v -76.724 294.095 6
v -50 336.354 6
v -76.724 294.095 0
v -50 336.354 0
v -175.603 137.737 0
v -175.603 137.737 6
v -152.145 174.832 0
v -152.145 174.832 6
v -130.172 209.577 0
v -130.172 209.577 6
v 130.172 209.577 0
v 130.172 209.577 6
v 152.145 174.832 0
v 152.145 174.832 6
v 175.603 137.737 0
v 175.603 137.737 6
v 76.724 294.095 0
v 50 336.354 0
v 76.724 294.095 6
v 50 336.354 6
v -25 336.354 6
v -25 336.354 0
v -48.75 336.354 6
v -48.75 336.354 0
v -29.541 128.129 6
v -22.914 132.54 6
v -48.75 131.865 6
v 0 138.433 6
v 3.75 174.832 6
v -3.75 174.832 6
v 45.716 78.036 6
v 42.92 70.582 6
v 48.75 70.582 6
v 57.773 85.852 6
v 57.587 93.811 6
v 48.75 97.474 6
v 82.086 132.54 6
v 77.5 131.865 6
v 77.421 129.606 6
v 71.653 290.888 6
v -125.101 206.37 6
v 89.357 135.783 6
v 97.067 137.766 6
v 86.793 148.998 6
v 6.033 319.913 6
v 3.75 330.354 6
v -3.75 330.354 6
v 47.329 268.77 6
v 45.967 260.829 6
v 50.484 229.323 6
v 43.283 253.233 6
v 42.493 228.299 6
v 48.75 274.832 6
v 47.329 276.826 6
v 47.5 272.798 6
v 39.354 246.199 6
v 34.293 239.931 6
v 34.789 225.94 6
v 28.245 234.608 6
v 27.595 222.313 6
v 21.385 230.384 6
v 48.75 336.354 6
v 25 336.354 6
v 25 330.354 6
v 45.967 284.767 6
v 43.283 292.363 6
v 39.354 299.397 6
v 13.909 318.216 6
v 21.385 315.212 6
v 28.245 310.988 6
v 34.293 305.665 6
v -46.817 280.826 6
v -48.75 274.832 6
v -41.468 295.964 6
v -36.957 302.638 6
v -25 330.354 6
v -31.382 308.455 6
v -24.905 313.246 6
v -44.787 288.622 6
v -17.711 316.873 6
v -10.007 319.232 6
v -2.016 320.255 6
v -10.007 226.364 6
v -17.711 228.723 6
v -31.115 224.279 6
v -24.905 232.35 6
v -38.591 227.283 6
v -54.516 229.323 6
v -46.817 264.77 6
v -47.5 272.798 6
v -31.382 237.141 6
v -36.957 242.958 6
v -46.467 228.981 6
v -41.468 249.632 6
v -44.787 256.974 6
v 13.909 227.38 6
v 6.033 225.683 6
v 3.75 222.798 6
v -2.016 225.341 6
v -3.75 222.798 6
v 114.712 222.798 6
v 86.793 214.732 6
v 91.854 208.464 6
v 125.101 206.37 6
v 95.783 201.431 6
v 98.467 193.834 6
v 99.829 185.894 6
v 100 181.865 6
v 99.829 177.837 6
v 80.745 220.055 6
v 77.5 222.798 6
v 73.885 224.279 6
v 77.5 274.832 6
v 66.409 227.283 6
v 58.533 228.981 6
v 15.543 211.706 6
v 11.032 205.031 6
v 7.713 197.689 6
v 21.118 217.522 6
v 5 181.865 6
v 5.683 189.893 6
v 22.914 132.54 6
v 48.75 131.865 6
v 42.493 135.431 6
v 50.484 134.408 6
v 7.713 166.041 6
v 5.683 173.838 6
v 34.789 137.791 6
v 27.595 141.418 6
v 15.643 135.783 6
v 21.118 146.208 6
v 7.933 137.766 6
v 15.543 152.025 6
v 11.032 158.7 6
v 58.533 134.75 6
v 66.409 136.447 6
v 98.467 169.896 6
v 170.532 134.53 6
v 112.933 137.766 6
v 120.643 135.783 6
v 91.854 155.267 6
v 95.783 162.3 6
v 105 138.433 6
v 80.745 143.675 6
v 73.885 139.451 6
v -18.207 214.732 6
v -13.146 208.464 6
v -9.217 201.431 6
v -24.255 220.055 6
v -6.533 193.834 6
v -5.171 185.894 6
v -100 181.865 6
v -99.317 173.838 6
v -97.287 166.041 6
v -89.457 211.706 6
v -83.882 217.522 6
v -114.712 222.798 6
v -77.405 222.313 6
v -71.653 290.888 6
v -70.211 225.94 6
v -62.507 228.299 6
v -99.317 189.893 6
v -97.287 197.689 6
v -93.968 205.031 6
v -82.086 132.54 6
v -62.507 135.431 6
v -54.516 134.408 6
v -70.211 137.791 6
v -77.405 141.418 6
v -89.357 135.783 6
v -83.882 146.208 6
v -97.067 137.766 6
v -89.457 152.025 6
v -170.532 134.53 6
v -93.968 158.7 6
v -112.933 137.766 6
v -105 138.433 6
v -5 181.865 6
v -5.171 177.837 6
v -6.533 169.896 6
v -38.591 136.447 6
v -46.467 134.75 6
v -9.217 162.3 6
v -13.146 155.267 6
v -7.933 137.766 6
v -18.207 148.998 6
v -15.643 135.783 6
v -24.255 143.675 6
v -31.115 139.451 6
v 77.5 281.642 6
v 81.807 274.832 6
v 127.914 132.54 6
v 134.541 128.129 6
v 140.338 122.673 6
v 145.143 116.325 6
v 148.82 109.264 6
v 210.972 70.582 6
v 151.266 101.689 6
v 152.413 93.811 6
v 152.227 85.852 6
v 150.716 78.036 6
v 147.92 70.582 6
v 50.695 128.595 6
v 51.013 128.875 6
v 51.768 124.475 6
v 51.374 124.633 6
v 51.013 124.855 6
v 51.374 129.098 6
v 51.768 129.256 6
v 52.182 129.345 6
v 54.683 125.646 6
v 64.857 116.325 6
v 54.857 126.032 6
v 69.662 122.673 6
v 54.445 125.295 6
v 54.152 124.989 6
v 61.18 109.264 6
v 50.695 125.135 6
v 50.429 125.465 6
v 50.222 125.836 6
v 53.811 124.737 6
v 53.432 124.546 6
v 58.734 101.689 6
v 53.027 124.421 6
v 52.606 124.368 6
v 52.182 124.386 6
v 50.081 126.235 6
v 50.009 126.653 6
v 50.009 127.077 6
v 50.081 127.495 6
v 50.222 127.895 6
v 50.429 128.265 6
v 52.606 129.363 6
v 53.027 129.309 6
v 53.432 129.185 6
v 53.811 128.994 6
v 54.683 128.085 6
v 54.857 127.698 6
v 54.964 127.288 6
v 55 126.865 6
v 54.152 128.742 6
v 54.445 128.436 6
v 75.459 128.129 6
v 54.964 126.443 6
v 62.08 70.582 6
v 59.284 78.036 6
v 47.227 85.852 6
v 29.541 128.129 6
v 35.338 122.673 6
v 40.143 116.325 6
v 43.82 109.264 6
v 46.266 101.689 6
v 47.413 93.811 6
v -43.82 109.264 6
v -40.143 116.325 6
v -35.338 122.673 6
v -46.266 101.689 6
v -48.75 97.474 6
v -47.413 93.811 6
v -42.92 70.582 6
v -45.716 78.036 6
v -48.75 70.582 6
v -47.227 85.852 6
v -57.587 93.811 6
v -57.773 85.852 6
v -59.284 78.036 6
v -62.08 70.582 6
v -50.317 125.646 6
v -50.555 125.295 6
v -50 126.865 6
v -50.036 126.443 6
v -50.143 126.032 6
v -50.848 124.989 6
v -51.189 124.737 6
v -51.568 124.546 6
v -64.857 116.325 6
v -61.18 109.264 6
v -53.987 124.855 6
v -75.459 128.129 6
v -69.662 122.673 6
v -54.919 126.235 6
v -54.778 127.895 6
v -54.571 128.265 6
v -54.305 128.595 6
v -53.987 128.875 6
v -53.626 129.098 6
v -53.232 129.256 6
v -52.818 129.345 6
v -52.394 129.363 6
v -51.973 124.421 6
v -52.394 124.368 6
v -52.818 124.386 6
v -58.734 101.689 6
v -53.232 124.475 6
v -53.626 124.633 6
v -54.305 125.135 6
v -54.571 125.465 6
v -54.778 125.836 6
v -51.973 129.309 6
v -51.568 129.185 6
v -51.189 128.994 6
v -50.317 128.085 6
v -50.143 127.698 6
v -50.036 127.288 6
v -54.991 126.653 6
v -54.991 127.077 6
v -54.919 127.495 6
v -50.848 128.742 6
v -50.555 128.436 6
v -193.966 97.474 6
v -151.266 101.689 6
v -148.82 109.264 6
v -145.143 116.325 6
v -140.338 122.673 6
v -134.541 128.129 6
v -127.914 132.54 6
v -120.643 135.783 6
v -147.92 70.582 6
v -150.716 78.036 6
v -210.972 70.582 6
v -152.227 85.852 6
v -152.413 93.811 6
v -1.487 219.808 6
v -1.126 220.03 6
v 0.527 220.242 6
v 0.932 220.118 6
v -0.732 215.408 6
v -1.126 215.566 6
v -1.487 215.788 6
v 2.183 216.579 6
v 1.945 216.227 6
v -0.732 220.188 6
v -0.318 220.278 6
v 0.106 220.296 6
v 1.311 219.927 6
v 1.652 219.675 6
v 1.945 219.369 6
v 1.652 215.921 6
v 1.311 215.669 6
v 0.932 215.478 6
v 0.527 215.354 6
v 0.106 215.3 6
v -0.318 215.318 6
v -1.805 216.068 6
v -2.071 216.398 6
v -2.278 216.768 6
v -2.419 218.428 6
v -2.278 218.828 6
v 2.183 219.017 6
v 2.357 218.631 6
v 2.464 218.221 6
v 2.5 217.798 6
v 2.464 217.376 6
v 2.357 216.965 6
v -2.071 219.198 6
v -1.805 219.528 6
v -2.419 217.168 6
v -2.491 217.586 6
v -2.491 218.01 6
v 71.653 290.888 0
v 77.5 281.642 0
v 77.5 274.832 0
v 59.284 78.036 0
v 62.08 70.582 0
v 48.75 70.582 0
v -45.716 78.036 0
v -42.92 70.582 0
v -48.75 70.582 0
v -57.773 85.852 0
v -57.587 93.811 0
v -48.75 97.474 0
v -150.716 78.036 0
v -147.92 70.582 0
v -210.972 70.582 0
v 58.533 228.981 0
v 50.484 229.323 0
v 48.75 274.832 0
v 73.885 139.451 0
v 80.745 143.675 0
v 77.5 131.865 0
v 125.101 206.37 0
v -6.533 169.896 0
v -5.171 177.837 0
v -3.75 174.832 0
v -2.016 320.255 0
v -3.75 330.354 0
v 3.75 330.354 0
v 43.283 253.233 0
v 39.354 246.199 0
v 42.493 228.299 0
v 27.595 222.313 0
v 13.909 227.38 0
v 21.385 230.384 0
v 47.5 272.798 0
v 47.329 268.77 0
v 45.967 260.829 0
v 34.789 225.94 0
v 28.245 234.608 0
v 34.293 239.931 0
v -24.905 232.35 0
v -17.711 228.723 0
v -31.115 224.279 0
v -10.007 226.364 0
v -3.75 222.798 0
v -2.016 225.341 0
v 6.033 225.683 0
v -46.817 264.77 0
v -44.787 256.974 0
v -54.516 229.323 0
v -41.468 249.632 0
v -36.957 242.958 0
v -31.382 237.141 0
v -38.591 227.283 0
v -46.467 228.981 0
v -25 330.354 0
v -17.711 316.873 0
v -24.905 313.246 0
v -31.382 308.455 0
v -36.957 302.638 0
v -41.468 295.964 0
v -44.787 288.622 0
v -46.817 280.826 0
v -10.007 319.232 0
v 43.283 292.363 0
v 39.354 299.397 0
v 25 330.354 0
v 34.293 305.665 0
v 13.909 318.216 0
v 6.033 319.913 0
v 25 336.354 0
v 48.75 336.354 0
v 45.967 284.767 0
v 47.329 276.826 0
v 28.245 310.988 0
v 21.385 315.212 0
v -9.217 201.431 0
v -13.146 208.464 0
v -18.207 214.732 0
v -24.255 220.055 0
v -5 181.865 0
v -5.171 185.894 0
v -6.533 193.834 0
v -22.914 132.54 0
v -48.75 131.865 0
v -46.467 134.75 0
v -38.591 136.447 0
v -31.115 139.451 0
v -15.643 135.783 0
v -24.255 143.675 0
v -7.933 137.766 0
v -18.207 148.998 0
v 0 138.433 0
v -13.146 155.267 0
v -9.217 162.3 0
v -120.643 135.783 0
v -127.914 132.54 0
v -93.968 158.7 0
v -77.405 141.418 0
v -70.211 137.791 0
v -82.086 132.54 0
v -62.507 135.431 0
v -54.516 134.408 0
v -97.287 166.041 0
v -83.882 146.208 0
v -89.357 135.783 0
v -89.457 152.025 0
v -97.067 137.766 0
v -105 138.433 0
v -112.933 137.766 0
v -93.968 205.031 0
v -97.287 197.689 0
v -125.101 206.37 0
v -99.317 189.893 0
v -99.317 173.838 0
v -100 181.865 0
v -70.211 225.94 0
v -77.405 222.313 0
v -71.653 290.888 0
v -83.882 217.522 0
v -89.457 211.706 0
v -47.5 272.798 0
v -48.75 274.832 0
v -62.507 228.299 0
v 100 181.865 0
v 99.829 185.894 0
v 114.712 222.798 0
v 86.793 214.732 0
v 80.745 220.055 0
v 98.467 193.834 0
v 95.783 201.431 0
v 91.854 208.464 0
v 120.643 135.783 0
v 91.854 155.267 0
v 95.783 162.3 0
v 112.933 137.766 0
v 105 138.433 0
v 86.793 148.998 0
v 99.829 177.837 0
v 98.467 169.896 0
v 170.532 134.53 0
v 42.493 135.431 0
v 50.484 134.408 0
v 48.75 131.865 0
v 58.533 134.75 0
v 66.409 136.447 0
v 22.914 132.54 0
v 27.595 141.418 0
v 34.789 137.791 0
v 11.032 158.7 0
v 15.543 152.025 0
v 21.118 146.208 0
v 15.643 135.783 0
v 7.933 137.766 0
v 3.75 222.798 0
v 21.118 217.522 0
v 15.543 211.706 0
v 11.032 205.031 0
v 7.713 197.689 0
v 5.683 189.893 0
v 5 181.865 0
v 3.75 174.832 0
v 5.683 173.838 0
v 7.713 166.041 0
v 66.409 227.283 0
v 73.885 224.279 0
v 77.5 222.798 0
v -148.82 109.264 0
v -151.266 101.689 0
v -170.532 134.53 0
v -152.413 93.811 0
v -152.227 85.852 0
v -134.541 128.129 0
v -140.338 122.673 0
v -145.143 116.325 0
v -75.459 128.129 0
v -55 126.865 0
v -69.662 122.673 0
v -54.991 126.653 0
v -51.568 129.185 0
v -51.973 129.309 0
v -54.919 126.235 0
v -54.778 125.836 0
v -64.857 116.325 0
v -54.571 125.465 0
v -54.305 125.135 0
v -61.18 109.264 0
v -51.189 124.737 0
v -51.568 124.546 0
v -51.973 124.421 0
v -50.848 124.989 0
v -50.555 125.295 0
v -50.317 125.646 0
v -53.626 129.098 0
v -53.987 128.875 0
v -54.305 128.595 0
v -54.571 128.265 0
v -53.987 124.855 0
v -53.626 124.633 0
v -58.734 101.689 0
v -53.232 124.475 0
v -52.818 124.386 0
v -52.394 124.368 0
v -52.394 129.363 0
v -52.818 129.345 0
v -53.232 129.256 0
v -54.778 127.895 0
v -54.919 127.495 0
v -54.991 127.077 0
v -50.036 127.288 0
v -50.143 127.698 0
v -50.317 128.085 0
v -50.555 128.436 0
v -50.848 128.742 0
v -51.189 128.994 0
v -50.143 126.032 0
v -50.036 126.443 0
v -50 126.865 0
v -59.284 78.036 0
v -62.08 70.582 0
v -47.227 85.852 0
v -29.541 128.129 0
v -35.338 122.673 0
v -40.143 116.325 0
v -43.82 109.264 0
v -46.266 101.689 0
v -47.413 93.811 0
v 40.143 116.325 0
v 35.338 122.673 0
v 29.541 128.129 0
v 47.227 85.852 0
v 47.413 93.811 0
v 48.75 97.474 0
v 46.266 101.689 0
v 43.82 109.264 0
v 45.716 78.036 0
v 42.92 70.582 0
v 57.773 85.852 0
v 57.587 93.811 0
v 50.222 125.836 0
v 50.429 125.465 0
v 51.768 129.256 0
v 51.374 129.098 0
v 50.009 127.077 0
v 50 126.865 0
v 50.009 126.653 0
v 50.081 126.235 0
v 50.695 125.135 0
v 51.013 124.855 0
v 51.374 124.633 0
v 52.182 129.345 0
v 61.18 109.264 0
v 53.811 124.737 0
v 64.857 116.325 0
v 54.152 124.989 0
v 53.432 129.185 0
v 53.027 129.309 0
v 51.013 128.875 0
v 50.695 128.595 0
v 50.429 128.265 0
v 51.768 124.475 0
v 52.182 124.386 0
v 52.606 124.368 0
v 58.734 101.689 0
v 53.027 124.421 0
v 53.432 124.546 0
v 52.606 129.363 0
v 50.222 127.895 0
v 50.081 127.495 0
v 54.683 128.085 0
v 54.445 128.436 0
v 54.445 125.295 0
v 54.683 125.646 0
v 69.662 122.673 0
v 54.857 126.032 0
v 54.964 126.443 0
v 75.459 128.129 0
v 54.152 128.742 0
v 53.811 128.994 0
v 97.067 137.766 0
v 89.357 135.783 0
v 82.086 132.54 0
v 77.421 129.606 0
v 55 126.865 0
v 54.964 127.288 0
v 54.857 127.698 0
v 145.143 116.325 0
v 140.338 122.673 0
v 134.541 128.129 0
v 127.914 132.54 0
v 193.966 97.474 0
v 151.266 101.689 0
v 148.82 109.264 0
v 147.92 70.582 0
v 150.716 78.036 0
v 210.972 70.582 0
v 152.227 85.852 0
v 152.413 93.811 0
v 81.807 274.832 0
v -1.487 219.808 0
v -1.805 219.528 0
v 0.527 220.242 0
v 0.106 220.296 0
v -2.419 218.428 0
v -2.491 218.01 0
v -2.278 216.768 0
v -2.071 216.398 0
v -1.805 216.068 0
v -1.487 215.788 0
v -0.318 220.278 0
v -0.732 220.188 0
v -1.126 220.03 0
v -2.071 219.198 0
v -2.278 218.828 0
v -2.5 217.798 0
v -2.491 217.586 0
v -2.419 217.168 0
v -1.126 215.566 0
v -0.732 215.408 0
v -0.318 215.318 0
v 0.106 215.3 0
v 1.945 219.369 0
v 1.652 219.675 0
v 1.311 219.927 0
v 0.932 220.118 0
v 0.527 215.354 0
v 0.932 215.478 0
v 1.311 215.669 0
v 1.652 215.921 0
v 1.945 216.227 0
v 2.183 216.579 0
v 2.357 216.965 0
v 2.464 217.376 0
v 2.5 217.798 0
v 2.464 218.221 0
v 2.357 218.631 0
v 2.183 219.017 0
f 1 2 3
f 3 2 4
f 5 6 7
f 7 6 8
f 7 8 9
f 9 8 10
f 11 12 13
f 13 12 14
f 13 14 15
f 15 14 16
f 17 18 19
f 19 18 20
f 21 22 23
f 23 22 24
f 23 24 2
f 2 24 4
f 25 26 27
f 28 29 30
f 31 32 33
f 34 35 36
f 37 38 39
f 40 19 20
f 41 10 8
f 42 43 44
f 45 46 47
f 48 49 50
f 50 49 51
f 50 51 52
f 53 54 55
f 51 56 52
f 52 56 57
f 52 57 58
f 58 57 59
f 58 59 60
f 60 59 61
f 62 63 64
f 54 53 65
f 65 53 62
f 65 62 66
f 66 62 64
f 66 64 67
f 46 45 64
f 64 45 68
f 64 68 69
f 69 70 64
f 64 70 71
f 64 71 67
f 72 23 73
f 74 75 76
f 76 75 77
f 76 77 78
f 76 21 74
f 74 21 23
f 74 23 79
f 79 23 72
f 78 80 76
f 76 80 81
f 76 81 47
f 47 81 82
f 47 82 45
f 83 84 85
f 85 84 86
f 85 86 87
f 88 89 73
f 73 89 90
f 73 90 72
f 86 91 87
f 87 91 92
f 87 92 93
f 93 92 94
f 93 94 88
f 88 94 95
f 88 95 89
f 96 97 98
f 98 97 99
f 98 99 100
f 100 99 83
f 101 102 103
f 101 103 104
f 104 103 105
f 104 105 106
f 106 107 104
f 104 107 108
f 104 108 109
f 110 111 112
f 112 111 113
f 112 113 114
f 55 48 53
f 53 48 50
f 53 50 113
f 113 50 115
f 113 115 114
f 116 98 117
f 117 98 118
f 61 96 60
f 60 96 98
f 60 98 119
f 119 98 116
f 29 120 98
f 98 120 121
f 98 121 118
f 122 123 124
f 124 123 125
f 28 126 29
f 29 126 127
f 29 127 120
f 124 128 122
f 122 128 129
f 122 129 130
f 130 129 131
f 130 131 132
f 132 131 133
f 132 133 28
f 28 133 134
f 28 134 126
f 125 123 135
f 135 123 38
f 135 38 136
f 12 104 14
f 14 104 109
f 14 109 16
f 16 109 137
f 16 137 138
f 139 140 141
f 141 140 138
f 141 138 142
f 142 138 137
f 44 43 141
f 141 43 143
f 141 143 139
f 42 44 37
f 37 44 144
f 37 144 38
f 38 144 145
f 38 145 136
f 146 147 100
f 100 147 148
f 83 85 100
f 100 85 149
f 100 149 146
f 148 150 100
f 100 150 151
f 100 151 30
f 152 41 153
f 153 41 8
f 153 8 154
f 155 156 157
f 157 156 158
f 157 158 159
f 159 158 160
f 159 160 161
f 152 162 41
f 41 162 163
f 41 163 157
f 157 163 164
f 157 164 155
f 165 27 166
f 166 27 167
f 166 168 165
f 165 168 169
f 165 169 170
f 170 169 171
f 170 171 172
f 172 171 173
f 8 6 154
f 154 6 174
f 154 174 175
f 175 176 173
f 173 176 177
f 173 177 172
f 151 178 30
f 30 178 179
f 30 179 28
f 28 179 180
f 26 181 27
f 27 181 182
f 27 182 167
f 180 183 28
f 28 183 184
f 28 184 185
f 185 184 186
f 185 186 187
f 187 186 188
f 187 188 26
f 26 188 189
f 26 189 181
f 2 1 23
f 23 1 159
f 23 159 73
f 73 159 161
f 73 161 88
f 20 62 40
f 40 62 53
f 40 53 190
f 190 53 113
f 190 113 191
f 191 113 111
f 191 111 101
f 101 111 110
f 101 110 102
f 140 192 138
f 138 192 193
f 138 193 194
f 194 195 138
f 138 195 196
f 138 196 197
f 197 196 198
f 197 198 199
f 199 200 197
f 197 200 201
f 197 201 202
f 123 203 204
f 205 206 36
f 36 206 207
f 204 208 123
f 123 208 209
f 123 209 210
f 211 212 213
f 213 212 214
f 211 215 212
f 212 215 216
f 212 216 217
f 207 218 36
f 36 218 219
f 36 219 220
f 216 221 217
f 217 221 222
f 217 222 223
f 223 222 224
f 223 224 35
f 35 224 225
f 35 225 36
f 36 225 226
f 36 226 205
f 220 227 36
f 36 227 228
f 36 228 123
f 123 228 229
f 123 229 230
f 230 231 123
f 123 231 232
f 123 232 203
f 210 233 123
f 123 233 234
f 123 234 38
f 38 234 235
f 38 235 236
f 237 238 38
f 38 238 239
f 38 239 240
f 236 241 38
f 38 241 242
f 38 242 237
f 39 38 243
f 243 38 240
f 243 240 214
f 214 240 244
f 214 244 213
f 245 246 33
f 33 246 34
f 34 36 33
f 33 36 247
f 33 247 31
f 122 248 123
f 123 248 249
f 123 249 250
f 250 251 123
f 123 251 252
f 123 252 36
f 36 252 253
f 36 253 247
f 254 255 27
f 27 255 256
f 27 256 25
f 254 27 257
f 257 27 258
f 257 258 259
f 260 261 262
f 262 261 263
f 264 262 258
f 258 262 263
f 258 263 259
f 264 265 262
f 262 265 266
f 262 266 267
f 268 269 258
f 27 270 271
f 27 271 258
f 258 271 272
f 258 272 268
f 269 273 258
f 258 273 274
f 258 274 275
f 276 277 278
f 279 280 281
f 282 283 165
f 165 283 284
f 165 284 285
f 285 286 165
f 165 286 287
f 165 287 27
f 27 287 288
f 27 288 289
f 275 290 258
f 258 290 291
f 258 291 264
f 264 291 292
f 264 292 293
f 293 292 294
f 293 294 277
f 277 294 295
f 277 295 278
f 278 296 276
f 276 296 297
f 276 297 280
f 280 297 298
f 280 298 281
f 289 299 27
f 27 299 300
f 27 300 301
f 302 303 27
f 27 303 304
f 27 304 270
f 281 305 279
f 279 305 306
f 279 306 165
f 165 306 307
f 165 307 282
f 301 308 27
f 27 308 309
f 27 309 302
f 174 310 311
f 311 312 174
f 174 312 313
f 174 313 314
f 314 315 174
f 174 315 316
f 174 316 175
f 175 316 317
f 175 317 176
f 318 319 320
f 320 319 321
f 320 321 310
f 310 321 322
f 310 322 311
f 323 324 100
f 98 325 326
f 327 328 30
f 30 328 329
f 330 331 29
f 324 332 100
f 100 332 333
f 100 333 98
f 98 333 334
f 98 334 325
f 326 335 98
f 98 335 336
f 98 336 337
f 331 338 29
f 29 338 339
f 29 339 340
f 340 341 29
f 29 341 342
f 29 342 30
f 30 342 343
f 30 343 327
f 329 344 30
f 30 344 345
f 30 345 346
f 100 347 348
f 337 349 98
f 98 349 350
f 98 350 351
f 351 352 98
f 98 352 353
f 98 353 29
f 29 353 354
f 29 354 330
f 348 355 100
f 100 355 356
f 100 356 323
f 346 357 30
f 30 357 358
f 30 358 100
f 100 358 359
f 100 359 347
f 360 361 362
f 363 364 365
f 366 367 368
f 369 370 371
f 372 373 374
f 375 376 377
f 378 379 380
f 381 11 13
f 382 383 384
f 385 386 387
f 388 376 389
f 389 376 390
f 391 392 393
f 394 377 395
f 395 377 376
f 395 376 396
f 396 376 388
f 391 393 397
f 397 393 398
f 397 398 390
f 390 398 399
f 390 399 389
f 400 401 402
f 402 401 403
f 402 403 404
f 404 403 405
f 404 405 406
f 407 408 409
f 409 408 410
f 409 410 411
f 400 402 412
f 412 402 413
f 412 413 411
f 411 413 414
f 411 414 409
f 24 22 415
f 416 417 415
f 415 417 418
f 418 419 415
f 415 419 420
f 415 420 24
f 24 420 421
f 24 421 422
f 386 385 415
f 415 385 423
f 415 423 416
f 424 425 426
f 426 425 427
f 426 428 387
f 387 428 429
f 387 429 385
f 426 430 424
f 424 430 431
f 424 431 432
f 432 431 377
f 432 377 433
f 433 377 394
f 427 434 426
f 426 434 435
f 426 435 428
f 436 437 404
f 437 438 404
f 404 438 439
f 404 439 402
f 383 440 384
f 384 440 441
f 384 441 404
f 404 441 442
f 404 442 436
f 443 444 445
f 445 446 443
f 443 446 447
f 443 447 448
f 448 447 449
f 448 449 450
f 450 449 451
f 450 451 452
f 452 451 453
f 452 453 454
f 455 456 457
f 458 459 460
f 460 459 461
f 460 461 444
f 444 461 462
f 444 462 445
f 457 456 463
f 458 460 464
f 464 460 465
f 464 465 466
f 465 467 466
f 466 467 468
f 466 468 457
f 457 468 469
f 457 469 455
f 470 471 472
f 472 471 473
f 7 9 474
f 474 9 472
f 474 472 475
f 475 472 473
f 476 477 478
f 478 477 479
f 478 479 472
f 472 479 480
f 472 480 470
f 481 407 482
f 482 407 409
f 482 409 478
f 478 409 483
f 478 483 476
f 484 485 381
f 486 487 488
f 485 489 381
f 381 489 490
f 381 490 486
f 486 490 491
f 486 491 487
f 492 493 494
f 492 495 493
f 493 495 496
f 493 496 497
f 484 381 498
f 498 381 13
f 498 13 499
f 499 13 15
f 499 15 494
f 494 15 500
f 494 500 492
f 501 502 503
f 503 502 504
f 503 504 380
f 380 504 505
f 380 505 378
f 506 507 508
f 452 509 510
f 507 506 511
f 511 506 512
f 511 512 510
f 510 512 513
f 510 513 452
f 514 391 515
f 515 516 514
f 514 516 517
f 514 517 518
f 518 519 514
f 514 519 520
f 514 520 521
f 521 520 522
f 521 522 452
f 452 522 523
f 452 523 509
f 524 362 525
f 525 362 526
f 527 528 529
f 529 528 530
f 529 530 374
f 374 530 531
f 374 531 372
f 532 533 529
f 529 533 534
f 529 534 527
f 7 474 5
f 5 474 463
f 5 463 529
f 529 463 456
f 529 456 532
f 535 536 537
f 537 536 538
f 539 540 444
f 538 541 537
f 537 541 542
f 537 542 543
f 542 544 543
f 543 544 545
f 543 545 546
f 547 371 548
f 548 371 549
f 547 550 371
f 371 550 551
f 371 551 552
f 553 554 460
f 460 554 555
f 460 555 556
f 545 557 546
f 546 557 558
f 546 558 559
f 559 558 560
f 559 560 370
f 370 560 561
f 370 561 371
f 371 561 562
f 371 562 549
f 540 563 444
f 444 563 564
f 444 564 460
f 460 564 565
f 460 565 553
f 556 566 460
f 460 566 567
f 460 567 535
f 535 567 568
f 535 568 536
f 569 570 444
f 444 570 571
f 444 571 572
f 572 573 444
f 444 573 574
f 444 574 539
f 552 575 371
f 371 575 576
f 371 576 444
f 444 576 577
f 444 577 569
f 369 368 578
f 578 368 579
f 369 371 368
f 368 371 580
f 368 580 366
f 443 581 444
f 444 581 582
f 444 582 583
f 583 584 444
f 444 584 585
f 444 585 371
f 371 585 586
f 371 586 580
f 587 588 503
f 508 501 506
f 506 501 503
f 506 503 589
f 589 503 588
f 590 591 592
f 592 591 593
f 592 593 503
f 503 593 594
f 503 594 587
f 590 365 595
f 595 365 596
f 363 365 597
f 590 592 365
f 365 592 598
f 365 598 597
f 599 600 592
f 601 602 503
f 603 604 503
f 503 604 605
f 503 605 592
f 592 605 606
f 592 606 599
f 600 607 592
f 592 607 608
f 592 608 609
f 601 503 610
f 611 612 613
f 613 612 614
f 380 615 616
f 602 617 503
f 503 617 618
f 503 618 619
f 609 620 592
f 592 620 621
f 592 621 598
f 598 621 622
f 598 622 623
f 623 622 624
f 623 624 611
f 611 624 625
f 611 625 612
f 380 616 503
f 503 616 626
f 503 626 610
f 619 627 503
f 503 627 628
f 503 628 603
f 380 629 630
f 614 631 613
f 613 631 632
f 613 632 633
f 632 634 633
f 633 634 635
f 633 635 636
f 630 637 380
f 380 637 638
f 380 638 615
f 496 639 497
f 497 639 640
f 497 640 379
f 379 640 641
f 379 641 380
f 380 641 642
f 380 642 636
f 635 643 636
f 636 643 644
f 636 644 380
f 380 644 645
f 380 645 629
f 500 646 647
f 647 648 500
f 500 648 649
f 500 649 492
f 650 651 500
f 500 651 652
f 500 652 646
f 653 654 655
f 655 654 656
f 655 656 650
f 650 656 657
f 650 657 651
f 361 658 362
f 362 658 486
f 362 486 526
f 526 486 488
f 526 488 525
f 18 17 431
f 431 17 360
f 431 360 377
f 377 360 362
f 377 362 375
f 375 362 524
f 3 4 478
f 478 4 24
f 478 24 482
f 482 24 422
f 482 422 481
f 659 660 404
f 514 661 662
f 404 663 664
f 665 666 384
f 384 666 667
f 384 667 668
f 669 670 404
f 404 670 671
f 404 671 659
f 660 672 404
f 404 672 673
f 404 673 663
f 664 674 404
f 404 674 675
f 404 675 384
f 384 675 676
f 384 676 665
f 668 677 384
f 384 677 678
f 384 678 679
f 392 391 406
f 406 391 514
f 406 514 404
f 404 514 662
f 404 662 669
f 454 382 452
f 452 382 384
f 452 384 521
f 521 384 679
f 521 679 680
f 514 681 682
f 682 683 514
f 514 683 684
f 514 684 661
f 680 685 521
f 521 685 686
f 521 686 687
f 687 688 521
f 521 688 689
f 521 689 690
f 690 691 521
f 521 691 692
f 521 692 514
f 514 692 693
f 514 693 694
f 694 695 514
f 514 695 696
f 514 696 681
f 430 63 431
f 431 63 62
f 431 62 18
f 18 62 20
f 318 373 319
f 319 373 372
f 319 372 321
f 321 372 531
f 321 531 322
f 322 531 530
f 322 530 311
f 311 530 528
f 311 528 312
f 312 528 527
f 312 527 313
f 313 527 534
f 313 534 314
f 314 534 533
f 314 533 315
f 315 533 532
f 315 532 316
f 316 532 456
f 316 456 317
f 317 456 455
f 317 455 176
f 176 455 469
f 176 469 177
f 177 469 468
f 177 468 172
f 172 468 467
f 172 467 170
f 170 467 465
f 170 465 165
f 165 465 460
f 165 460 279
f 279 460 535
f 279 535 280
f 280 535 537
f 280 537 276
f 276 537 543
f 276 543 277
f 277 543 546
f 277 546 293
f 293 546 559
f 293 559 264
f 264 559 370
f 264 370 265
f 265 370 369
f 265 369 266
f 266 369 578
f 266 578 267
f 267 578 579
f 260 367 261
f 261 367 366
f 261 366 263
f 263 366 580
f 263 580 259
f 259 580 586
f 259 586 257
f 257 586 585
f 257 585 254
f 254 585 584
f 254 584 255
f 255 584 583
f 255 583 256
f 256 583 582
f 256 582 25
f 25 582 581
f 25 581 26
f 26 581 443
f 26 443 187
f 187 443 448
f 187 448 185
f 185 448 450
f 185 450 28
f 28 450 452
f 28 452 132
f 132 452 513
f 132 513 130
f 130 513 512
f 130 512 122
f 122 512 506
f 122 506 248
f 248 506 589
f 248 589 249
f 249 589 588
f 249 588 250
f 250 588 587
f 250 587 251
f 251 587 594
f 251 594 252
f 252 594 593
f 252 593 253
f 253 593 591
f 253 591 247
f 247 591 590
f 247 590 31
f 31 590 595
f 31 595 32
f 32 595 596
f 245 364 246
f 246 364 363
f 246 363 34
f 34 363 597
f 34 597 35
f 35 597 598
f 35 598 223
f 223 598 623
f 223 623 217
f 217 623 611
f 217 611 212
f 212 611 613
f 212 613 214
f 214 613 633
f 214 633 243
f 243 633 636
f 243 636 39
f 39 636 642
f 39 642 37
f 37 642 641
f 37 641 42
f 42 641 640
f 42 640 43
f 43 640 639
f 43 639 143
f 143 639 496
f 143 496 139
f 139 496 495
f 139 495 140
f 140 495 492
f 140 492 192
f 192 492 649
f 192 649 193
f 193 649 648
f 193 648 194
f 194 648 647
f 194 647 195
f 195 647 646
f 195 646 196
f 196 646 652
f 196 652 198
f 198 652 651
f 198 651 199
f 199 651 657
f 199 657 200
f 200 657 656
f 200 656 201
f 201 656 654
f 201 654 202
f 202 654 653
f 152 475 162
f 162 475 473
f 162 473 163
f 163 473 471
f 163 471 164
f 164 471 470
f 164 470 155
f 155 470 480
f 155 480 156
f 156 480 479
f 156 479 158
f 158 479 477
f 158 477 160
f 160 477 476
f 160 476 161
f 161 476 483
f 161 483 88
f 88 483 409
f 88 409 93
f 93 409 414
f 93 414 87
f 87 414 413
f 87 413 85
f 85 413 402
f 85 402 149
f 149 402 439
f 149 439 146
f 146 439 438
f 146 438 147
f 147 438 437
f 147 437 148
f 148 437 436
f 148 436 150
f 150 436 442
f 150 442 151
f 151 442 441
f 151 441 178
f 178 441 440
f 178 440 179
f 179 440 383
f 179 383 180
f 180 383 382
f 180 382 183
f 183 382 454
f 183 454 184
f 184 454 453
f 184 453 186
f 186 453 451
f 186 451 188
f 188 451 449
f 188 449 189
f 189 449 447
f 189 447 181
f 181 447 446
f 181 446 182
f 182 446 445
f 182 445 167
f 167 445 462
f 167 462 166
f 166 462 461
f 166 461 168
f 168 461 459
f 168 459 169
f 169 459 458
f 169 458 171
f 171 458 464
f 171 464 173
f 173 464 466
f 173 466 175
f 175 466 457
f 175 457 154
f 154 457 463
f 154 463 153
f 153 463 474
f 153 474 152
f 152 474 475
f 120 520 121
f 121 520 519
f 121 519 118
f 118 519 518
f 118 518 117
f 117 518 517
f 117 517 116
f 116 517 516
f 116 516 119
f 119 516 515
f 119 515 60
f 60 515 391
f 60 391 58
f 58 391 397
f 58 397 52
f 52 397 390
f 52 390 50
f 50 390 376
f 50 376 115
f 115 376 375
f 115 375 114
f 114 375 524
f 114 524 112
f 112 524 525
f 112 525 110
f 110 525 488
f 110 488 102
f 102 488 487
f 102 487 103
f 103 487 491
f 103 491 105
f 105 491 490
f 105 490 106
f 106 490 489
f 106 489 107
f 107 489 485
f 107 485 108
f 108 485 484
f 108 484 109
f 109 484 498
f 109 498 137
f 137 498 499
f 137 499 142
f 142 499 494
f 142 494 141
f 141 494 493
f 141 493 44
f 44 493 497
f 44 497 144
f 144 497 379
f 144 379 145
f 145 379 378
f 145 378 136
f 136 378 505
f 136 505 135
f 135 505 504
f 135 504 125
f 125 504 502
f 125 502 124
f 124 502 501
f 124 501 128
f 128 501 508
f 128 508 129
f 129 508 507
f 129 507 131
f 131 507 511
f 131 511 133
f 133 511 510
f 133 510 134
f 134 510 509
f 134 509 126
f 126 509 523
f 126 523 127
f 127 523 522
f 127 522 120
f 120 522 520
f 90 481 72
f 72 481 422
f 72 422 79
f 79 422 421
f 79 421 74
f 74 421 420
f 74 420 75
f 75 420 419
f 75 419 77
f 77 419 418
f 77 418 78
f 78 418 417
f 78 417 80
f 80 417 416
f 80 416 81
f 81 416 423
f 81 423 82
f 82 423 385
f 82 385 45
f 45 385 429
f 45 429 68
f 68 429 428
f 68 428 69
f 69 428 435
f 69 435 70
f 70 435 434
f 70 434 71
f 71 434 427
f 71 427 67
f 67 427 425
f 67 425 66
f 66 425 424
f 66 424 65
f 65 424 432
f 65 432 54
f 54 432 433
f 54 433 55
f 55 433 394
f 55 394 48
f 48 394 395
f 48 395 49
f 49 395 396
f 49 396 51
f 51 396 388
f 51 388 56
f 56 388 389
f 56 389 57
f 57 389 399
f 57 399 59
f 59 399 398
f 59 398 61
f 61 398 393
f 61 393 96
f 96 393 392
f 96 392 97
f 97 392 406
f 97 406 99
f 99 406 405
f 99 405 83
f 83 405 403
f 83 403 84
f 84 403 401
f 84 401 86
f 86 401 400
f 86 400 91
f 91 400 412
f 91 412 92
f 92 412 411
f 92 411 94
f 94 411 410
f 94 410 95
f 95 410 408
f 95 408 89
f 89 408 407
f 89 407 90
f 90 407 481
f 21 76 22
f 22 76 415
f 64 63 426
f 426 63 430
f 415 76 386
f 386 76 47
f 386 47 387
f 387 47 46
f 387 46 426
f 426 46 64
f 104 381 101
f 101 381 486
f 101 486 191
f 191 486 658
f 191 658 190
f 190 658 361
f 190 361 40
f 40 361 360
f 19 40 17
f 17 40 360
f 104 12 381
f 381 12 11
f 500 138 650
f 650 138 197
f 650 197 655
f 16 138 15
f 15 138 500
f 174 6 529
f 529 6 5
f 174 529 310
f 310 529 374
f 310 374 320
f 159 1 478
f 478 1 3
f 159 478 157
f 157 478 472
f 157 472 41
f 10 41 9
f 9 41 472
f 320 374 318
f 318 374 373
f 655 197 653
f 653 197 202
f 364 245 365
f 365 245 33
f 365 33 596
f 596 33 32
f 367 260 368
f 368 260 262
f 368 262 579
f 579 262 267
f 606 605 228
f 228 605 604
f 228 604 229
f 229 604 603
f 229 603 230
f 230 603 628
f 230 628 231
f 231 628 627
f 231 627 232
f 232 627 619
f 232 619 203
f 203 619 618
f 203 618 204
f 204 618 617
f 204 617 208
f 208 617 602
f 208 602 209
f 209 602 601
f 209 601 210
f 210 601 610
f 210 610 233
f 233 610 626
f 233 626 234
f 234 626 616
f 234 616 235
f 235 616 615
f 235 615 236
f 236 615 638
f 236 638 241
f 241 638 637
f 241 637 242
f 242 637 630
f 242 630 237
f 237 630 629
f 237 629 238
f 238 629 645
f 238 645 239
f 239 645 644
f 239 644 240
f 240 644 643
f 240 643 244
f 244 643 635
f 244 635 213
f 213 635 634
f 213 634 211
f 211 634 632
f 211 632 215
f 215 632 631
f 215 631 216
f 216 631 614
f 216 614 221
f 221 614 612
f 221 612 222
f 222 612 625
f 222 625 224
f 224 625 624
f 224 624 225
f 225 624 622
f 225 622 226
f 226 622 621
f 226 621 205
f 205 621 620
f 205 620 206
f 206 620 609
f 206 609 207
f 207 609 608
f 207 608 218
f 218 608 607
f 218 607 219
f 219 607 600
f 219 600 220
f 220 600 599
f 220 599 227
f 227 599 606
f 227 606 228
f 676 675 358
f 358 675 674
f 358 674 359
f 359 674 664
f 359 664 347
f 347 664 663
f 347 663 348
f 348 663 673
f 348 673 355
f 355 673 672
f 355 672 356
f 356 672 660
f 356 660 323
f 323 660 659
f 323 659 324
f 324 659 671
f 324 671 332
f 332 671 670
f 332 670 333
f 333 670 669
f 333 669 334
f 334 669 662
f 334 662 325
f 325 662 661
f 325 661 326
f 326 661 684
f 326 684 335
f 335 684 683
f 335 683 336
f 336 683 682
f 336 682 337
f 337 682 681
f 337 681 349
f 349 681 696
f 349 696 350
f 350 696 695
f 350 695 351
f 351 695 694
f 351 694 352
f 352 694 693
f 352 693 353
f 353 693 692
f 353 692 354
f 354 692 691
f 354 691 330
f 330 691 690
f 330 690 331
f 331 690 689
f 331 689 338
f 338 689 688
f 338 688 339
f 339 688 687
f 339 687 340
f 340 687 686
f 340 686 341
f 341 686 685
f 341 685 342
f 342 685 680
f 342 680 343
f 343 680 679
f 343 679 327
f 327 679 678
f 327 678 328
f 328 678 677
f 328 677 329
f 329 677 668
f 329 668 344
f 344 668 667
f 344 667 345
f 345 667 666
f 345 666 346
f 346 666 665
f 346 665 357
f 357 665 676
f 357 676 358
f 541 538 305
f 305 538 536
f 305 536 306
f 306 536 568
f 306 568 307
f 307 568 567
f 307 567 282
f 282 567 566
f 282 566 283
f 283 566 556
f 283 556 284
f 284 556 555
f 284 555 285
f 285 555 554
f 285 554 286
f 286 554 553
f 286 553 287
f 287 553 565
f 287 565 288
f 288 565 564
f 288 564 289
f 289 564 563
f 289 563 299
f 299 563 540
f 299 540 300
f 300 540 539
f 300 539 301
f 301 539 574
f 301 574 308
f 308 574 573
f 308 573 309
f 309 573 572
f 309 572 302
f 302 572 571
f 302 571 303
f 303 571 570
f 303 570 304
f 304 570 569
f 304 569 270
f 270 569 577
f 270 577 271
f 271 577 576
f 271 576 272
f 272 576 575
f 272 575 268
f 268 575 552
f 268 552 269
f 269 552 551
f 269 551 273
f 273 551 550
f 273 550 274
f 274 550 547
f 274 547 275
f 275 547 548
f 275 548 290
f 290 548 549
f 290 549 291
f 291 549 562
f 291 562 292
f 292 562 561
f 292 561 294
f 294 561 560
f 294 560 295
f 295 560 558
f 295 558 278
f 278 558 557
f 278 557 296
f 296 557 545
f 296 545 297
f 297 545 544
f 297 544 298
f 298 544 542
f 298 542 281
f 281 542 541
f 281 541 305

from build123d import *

# Parameters (mm, degrees)
ESQUISSE1_R             = 47.5
BOSS_EXTRU_1_DEPTH      = 6
ESQUISSE9_W             = 150
ESQUISSE9_H             = 120
BOSS_EXTRU_2_DEPTH      = 10
ESQUISSE10_W            = 6
ESQUISSE10_H            = 50
ESQUISSE10_W_2          = 50
ESQUISSE10_H_2          = 6
ENL_V_MAT_EXTRU_1_DEPTH = 10
ESQUISSE11_W            = 670.254020464
ESQUISSE11_H            = 265.771999275
ENL_V_MAT_EXTRU_2_DEPTH = 10
ESQUISSE12_R            = 2.5
ENL_V_MAT_EXTRU_3_DEPTH = 10


with BuildPart() as part:
    # Esquisse1 → Boss.-Extru.1 (new body)
    with BuildSketch(Plane.XY):
        Polygon((-255.775862069, 10.959681362), (-205, -75.190256718), (205, -75.190256718), (255.775862069, 10.959681362), (50, 336.353741833), (-50, 336.353741833), align=None)
        with Locations((-157.5, 0)):
            Circle(ESQUISSE1_R, mode=Mode.SUBTRACT)
        with Locations((-52.5, 0)):
            Circle(ESQUISSE1_R, mode=Mode.SUBTRACT)
        with Locations((52.5, 0)):
            Circle(ESQUISSE1_R, mode=Mode.SUBTRACT)
        with Locations((157.5, 0)):
            Circle(ESQUISSE1_R, mode=Mode.SUBTRACT)
        with Locations((-105, 90.932667397)):
            Circle(ESQUISSE1_R, mode=Mode.SUBTRACT)
        with Locations((0, 90.932667397)):
            Circle(ESQUISSE1_R, mode=Mode.SUBTRACT)
        with Locations((105, 90.932667397)):
            Circle(ESQUISSE1_R, mode=Mode.SUBTRACT)
        with Locations((-52.5, 181.865334795)):
            Circle(ESQUISSE1_R, mode=Mode.SUBTRACT)
        with Locations((52.5, 181.865334795)):
            Circle(ESQUISSE1_R, mode=Mode.SUBTRACT)
        with Locations((0, 272.798002192)):
            Circle(ESQUISSE1_R, mode=Mode.SUBTRACT)
    extrude(amount=BOSS_EXTRU_1_DEPTH)

    # Esquisse9 → Boss.-Extru.2 (add)
    with BuildSketch(Plane.XY.offset(6)):
        with Locations((0, -135.190256718)):
            Rectangle(ESQUISSE9_W, ESQUISSE9_H)
    extrude(amount=-BOSS_EXTRU_2_DEPTH)

    # Esquisse10 → Enlèv. mat.-Extru.1 (cut)
    with BuildSketch(Plane.XY.offset(6)):
        with Locations((-72, -129.244737692)):
            Rectangle(ESQUISSE10_W, ESQUISSE10_H)
        with Locations((0, -192.190256718)):
            Rectangle(ESQUISSE10_W_2, ESQUISSE10_H_2)
        with Locations((-140, -72.190256718)):
            Rectangle(ESQUISSE10_W_2, ESQUISSE10_H_2)
        Polygon((-217.693965517, -53.652772198), (-212.524969232, -50.606220473), (-237.912900267, -7.531251434), (-243.081896552, -10.577803158), align=None)
        Polygon((-229.051724138, 53.218650255), (-223.980647871, 50.011753703), (-170.532372009, 134.529691487), (-175.603448276, 137.736588039), align=None)
        Polygon((-130.172413793, 209.576835156), (-125.101337526, 206.369938604), (-71.653061664, 290.887876389), (-76.724137931, 294.094772941), align=None)
        with Locations((0, 333.353741833)):
            Rectangle(ESQUISSE10_W_2, ESQUISSE10_H_2)
        Polygon((71.653061664, 290.887876389), (76.724137931, 294.094772941), (130.172413793, 209.576835156), (125.101337526, 206.369938604), align=None)
        Polygon((170.532372009, 134.529691487), (175.603448276, 137.736588039), (229.051724138, 53.218650255), (223.980647871, 50.011753703), align=None)
        Polygon((237.912900267, -7.531251434), (243.081896552, -10.577803158), (217.693965517, -53.652772198), (212.524969232, -50.606220473), align=None)
        with Locations((140, -72.190256718)):
            Rectangle(ESQUISSE10_W_2, ESQUISSE10_H_2)
        with Locations((72, -129.244737692)):
            Rectangle(ESQUISSE10_W, ESQUISSE10_H)
    extrude(amount=-ENL_V_MAT_EXTRU_1_DEPTH, mode=Mode.SUBTRACT)

    # Esquisse11 → Enlèv. mat.-Extru.2 (cut)
    with BuildSketch(Plane.XY.offset(6)):
        with Locations((-20.35830969, -62.304257081)):
            Rectangle(ESQUISSE11_W, ESQUISSE11_H)
    extrude(amount=-ENL_V_MAT_EXTRU_2_DEPTH, mode=Mode.SUBTRACT)

    # Esquisse12 → Enlèv. mat.-Extru.3 (cut)
    with BuildSketch(Plane.XY.offset(6)):
        with Locations((-52.5, 126.865334795)):
            Circle(ESQUISSE12_R)
        with Locations((52.5, 126.865334795)):
            Circle(ESQUISSE12_R)
        with Locations((0, 217.798002192)):
            Circle(ESQUISSE12_R)
    extrude(amount=-ENL_V_MAT_EXTRU_3_DEPTH, mode=Mode.SUBTRACT)


solid = part.part
